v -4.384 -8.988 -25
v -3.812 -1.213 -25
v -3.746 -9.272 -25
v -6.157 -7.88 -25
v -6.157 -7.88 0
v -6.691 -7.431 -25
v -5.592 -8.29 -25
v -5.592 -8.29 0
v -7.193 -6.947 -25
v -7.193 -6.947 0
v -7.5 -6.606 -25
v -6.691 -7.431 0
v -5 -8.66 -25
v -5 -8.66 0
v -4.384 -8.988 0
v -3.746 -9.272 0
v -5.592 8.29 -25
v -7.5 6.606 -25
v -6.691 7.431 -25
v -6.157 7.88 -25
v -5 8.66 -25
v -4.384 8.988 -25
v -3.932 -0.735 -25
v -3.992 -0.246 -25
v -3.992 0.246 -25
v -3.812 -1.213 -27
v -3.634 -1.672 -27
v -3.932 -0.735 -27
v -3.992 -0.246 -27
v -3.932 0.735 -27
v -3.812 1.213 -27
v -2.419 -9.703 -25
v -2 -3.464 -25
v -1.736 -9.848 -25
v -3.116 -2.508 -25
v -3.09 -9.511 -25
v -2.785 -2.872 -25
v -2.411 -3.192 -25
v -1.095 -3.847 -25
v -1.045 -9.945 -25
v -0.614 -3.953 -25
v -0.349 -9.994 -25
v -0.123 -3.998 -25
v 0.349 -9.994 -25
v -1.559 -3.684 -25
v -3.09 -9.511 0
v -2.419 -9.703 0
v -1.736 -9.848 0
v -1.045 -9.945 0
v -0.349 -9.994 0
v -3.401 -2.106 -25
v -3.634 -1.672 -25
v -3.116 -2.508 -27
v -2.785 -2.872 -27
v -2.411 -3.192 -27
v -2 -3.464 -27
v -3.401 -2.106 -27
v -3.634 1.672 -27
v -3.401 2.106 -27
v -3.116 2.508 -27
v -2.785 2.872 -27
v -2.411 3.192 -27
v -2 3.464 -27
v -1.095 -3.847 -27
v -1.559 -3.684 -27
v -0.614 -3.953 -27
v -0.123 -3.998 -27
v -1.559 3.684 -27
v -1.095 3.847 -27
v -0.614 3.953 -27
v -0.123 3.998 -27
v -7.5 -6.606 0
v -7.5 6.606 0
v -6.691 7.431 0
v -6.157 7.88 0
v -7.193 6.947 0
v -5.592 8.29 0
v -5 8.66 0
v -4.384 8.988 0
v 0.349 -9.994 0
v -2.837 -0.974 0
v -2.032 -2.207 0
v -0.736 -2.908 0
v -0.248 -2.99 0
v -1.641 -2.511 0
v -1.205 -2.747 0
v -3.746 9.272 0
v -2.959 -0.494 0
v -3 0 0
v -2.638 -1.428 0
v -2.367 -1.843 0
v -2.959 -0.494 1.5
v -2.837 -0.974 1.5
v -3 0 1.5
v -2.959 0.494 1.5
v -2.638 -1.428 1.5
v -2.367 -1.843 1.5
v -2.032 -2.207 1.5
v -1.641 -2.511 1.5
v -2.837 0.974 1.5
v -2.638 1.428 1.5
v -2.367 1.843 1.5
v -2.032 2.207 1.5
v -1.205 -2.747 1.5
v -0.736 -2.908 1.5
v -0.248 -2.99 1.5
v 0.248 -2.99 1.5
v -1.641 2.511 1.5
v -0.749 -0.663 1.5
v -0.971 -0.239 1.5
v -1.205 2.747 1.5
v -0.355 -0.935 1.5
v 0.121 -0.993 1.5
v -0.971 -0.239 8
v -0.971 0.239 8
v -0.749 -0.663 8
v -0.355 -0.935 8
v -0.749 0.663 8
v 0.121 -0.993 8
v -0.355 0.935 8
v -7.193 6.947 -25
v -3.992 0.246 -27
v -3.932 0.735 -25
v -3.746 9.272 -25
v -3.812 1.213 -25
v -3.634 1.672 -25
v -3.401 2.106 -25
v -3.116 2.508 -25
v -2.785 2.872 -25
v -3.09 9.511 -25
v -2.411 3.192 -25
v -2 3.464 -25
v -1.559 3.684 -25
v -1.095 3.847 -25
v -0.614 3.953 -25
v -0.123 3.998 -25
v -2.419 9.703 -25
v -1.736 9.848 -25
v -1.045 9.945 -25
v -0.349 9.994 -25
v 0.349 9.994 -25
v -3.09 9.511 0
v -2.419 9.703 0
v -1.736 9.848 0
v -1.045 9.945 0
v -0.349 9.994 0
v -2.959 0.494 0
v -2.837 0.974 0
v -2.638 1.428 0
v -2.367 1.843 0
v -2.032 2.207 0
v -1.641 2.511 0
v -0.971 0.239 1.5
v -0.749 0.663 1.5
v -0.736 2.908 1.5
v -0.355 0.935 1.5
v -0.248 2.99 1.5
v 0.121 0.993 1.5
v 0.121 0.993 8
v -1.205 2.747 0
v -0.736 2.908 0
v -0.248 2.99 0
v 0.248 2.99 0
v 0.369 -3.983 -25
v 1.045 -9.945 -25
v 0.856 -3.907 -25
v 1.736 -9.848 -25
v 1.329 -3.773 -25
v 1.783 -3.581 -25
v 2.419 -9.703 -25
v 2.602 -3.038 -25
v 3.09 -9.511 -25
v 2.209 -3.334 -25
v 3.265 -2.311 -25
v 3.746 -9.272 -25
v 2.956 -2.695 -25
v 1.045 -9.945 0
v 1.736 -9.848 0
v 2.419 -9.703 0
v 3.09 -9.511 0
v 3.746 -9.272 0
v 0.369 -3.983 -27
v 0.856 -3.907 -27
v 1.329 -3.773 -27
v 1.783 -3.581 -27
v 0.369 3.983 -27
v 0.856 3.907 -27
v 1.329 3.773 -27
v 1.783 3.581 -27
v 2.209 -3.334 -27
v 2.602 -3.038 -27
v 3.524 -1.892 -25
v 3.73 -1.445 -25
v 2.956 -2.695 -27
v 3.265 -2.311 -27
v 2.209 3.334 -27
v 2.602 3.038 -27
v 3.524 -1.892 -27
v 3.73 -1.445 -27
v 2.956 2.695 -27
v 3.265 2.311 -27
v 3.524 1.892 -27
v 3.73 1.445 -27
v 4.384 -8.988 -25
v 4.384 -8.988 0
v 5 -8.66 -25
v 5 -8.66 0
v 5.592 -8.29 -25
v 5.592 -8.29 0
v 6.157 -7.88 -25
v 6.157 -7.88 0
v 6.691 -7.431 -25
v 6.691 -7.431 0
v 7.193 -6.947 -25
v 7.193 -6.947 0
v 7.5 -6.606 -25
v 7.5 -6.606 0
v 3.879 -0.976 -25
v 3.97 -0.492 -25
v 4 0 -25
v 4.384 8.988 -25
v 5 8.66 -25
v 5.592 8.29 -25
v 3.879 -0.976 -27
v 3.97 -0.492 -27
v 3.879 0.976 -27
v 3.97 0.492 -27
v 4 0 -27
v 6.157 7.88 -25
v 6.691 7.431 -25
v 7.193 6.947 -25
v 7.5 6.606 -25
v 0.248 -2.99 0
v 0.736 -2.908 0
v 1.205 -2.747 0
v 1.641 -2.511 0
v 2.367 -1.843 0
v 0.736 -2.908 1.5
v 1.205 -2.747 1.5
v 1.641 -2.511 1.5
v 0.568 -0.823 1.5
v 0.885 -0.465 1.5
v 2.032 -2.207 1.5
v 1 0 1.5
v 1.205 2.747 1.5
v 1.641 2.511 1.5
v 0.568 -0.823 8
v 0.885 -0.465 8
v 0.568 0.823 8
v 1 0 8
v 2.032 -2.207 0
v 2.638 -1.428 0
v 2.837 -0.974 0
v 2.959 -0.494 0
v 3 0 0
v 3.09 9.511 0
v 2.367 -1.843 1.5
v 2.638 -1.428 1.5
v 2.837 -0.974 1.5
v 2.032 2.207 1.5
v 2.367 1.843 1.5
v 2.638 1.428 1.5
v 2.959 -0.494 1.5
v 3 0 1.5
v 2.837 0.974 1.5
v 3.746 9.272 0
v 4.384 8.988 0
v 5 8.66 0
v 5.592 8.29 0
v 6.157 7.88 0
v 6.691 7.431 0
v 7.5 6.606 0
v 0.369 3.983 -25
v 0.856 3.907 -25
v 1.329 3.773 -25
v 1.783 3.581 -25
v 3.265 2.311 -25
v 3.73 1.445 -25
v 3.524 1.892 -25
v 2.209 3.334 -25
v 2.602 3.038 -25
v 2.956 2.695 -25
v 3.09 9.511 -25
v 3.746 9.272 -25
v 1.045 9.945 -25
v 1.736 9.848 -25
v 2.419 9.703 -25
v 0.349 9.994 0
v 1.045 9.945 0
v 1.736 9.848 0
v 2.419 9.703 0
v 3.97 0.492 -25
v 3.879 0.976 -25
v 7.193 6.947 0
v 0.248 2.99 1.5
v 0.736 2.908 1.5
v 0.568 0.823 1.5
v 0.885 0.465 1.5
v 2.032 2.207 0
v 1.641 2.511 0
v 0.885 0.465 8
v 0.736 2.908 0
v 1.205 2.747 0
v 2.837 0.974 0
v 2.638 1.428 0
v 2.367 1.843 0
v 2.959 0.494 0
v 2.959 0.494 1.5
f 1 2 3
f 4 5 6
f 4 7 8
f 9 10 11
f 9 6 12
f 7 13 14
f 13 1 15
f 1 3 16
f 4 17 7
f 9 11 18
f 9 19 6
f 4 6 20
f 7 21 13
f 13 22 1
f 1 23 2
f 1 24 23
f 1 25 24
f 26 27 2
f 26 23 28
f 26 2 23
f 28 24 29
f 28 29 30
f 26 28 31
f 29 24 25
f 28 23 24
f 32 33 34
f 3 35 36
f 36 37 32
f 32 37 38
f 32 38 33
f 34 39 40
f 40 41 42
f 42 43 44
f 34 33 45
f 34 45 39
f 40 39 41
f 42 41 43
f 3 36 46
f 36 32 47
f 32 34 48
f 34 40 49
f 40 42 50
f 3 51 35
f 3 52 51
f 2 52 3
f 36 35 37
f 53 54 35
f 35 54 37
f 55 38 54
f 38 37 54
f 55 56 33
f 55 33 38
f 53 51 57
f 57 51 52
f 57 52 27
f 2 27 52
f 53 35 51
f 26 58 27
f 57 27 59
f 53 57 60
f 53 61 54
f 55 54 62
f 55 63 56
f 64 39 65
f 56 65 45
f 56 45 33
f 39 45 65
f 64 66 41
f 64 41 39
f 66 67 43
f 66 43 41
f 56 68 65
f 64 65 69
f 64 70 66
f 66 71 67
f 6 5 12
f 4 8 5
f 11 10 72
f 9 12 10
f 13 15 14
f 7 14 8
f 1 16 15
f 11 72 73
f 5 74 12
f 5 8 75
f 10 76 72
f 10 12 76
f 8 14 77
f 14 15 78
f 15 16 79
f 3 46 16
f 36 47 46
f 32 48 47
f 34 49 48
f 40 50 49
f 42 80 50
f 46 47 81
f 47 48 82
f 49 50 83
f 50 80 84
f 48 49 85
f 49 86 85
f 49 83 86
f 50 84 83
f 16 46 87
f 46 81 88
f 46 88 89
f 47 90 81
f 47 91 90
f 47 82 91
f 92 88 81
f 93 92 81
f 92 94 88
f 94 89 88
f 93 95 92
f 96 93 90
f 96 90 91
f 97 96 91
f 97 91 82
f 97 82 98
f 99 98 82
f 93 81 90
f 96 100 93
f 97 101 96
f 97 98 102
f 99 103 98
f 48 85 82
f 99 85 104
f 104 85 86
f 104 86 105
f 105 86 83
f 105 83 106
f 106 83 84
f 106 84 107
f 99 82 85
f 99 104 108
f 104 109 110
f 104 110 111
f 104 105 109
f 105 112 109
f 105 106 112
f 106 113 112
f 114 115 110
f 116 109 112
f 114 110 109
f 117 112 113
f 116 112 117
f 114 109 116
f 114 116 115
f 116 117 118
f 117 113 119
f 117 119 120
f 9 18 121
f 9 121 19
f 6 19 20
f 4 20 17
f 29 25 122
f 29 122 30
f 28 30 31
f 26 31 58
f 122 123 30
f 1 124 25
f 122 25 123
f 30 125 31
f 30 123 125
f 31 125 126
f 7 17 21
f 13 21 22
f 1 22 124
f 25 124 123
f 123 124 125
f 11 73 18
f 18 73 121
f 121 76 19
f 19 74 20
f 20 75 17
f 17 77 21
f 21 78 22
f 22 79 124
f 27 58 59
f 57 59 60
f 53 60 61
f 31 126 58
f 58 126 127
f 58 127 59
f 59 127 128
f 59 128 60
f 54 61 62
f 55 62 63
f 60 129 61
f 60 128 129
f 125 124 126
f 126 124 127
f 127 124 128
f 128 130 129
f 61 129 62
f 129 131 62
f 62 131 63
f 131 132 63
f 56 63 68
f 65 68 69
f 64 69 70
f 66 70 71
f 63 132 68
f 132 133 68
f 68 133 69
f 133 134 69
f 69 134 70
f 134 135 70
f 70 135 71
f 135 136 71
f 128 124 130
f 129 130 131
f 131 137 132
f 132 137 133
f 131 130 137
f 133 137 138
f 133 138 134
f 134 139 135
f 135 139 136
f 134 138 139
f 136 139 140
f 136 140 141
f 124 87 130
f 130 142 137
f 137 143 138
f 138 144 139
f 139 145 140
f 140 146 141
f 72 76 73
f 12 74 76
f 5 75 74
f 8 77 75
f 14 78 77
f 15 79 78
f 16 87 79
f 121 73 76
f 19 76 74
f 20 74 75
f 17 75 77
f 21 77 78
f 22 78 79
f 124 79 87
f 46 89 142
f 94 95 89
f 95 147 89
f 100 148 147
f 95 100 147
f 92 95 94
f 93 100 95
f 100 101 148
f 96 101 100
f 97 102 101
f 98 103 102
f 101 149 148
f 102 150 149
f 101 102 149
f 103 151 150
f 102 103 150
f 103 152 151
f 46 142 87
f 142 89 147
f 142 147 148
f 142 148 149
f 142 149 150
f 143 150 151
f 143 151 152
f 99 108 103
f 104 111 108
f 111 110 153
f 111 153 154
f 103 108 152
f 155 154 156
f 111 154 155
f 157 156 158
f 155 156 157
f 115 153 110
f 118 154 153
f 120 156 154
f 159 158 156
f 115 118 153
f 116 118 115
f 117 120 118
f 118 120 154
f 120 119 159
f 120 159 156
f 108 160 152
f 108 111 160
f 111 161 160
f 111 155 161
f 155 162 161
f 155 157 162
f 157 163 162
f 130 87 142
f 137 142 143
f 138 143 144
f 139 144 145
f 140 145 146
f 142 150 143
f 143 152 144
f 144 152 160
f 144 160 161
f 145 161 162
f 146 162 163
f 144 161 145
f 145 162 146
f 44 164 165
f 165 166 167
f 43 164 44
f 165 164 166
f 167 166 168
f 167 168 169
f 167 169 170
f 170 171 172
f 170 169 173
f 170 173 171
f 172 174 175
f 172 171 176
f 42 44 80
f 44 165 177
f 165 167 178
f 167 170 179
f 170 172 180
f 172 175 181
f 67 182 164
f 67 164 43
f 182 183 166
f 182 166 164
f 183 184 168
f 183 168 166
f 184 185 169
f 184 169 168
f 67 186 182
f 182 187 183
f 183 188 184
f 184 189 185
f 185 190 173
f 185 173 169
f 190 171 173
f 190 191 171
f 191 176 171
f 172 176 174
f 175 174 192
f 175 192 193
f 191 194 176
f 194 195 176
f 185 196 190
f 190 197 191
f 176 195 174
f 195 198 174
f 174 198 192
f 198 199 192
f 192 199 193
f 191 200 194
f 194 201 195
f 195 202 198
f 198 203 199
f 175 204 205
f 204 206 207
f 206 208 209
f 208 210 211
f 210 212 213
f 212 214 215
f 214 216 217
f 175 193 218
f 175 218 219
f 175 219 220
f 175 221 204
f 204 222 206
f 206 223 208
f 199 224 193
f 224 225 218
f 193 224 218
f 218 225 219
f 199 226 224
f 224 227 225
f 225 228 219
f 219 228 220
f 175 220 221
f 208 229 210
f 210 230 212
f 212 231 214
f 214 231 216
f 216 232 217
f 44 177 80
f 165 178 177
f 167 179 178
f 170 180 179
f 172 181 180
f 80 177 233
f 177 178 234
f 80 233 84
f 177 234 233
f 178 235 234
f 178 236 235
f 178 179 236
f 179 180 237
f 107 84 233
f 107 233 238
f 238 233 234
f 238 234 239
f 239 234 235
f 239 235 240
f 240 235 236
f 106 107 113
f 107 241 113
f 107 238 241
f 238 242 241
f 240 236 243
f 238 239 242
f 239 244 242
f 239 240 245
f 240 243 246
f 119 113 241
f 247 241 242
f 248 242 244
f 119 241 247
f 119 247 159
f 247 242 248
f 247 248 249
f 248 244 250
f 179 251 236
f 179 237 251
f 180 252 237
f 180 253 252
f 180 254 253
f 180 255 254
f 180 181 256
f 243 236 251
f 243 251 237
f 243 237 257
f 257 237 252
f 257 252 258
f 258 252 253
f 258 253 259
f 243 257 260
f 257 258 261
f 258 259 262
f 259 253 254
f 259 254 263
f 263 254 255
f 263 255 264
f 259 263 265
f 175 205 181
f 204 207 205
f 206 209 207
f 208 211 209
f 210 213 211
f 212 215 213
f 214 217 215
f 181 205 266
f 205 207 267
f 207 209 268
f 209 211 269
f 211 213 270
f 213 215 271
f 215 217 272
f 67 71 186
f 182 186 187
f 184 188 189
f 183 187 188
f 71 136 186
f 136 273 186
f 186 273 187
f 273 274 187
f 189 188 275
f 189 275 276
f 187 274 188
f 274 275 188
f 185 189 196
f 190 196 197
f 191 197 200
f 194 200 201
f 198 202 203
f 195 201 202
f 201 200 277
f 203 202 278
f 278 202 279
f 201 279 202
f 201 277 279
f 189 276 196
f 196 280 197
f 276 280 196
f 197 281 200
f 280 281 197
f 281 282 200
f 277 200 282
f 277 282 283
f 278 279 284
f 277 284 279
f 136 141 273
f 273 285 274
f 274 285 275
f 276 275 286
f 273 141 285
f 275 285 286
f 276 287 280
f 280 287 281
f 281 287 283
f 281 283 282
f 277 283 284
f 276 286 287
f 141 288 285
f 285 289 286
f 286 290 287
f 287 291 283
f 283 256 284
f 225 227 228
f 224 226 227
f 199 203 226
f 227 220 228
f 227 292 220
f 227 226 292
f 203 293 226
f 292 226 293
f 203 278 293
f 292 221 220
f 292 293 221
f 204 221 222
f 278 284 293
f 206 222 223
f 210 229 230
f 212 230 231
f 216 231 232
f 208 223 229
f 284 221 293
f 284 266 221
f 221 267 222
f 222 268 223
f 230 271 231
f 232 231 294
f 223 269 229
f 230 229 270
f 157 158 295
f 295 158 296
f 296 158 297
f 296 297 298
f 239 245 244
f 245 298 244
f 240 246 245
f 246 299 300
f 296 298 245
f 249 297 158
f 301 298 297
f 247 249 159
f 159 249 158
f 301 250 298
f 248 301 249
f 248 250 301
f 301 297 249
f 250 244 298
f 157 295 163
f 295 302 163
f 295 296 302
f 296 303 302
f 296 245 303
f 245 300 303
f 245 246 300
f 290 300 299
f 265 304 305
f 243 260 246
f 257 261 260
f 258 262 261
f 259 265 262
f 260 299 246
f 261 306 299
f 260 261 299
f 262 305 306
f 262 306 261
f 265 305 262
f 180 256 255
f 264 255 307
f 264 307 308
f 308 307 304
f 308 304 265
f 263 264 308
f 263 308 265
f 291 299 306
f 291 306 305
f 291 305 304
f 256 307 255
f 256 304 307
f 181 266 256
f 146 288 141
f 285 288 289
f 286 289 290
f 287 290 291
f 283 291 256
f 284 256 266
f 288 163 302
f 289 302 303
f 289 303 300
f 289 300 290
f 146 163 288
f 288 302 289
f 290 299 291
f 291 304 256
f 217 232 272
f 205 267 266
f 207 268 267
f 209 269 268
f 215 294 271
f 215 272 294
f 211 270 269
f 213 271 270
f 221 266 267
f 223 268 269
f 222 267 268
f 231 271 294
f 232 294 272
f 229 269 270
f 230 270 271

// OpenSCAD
// file: ../lib/lib.scad
// Shared helpers. Include AFTER params.scad (needs TOL, M3_* etc.).
$fa = 4; $fs = 0.5;

module rrect(size, r) {            // 2D rounded rectangle, centred
    r2 = min(r, min(size[0], size[1]) / 2 - 0.001);
    offset(r = r2) square([size[0] - 2 * r2, size[1] - 2 * r2], center = true);
}
module rbox(size, r, center_xy = true) {   // box with rounded vertical edges
    translate(center_xy ? [0, 0, 0] : [size[0] / 2, size[1] / 2, 0])
        linear_extrude(size[2]) rrect([size[0], size[1]], r);
}
module rbox_at(x0, x1, y0, y1, z0, z1, r = 0.01) {
    translate([(x0 + x1) / 2, (y0 + y1) / 2, z0]) rbox([x1 - x0, y1 - y0, z1 - z0], r);
}
module box_at(x0, x1, y0, y1, z0, z1) { translate([x0, y0, z0]) cube([x1 - x0, y1 - y0, z1 - z0]); }

module ring(ro, ri, h) { difference() { cylinder(r = ro, h = h); translate([0, 0, -1]) cylinder(r = ri, h = h + 2); } }
module ring_sector(ro, ri, h, a0, a1) {
    intersection() {
        ring(ro, ri, h);
        linear_extrude(h) polygon(concat([[0, 0]], [for (a = [a0 : (a1 - a0) / 24 : a1]) 2 * ro * [cos(a), sin(a)]]));
    }
}
// teardrop hole along an axis lying horizontal (axis = Y after rotation), printable w/o support
module teardrop2d(d) { union() { circle(d = d); rotate(45) square(d / 2); } }
// vertical heat-set insert hole, opening at z=0 going +z (depth l)
module insert_hole(l = M3_INSERT_L) { translate([0, 0, -EPS]) cylinder(d = M3_INSERT_D, h = l + EPS); }
module m3_clear(l) { translate([0, 0, -EPS]) cylinder(d = M3_CLEAR, h = l + 2 * EPS); }
module m3_csk(l) {  // countersunk clearance from z=0 upward, head at z=0 side
    translate([0, 0, -EPS]) { cylinder(d = M3_CLEAR, h = l + 2 * EPS); cylinder(d1 = 6.4, d2 = M3_CLEAR, h = 1.7); }
}
module card2d() { rrect([CARD_L, CARD_W], CARD_R); }
module card_at(cy, z) { translate([0, cy, z]) linear_extrude(CARD_T) card2d(); }

// ---- gears ----
function _inv(a) = tan(a) - a * PI_ / 180;           // involute function, a in deg
function _invpt(rb, r, ang0, s) = let(al = acos(rb / r), th = ang0 - s * (_inv(al) * 180 / PI_)) [r * cos(th), r * sin(th)];
module involute_gear2d(m, z, pa = 20, clearance = 0.05) {
    rp = m * z / 2; rb = rp * cos(pa); ra = rp + m - clearance; rf = rp - 1.25 * m;
    half = 90 / z + _inv(pa) * 180 / PI_;            // tooth half-angle at base (deg)
    n = 8;
    rs = [for (i = [0 : n]) max(rb, rf) + (ra - max(rb, rf)) * i / n];
    union() {
        circle(r = rf, $fn = z * 4);
        for (k = [0 : z - 1]) rotate(k * 360 / z) polygon(concat(
            [[rf * cos(-half), rf * sin(-half)]],
            [for (r = rs) let(p = _invpt(rb, r, half, 1)) [p[0], -p[1]]],
            [for (i = [n : -1 : 0]) _invpt(rb, rs[i], half, 1)],
            [[rf * cos(half), rf * sin(half)]]));
    }
}
// straight gear rack (2D in XY: teeth along +x, pointing -y, pitch line at y=0)
module gear_rack2d(m, len, back = 3) {
    p = PI_ * m; ad = m; de = 1.25 * m; t = tan(20);
    n = ceil(len / p) + 1;
    intersection() {
        union() {
            translate([0, de]) square([len, back]);
            for (i = [0 : n]) translate([i * p - p / 4, 0]) polygon([
                [-(p / 4 + de * t), de + 0.01], [p / 4 + de * t + 0.01, de + 0.01],
                [p / 4 - ad * t, -ad], [-(p / 4 - ad * t), -ad] ]);
        }
        translate([0, -ad - 1]) square([len, ad + de + back + 2]);
    }
}
// GT2 belt-tooth profile ring (teeth outward), 2D
module gt2_ring2d(n, r_land, ri) {
    union() {
        difference() { circle(r = r_land + 0.01, $fn = n * 2); circle(r = ri, $fn = n * 2); }
        for (k = [0 : n - 1]) rotate(k * 360 / n)
            translate([r_land, 0]) hull() { translate([-0.2, 0]) square([0.2, 1.0], center = true); translate([0.25, 0]) circle(r = 0.5, $fn = 12); }
    }
}
// main file
// Vendor model: 130-size brushed DC motor (launcher). Local: face z=0, shaft +Z (2 mm x 8), body toward -Z, flats +-7.5 in X.
include <../params.scad>
include <../lib/lib.scad>
module vendor_motor_130() {
    color([0.78,0.78,0.8]) translate([0, 0, -25]) intersection() { cylinder(d = 20, h = 25); translate([-7.5, -11, 0]) cube([15, 22, 25]); }
    color([0.85,0.85,0.85]) cylinder(d = 6, h = 1.5);
    color([0.9,0.9,0.9]) translate([0, 0, -27]) cylinder(d = 8, h = 2);
    color("silver") cylinder(d = 2, h = 8);
}

vendor_motor_130();
